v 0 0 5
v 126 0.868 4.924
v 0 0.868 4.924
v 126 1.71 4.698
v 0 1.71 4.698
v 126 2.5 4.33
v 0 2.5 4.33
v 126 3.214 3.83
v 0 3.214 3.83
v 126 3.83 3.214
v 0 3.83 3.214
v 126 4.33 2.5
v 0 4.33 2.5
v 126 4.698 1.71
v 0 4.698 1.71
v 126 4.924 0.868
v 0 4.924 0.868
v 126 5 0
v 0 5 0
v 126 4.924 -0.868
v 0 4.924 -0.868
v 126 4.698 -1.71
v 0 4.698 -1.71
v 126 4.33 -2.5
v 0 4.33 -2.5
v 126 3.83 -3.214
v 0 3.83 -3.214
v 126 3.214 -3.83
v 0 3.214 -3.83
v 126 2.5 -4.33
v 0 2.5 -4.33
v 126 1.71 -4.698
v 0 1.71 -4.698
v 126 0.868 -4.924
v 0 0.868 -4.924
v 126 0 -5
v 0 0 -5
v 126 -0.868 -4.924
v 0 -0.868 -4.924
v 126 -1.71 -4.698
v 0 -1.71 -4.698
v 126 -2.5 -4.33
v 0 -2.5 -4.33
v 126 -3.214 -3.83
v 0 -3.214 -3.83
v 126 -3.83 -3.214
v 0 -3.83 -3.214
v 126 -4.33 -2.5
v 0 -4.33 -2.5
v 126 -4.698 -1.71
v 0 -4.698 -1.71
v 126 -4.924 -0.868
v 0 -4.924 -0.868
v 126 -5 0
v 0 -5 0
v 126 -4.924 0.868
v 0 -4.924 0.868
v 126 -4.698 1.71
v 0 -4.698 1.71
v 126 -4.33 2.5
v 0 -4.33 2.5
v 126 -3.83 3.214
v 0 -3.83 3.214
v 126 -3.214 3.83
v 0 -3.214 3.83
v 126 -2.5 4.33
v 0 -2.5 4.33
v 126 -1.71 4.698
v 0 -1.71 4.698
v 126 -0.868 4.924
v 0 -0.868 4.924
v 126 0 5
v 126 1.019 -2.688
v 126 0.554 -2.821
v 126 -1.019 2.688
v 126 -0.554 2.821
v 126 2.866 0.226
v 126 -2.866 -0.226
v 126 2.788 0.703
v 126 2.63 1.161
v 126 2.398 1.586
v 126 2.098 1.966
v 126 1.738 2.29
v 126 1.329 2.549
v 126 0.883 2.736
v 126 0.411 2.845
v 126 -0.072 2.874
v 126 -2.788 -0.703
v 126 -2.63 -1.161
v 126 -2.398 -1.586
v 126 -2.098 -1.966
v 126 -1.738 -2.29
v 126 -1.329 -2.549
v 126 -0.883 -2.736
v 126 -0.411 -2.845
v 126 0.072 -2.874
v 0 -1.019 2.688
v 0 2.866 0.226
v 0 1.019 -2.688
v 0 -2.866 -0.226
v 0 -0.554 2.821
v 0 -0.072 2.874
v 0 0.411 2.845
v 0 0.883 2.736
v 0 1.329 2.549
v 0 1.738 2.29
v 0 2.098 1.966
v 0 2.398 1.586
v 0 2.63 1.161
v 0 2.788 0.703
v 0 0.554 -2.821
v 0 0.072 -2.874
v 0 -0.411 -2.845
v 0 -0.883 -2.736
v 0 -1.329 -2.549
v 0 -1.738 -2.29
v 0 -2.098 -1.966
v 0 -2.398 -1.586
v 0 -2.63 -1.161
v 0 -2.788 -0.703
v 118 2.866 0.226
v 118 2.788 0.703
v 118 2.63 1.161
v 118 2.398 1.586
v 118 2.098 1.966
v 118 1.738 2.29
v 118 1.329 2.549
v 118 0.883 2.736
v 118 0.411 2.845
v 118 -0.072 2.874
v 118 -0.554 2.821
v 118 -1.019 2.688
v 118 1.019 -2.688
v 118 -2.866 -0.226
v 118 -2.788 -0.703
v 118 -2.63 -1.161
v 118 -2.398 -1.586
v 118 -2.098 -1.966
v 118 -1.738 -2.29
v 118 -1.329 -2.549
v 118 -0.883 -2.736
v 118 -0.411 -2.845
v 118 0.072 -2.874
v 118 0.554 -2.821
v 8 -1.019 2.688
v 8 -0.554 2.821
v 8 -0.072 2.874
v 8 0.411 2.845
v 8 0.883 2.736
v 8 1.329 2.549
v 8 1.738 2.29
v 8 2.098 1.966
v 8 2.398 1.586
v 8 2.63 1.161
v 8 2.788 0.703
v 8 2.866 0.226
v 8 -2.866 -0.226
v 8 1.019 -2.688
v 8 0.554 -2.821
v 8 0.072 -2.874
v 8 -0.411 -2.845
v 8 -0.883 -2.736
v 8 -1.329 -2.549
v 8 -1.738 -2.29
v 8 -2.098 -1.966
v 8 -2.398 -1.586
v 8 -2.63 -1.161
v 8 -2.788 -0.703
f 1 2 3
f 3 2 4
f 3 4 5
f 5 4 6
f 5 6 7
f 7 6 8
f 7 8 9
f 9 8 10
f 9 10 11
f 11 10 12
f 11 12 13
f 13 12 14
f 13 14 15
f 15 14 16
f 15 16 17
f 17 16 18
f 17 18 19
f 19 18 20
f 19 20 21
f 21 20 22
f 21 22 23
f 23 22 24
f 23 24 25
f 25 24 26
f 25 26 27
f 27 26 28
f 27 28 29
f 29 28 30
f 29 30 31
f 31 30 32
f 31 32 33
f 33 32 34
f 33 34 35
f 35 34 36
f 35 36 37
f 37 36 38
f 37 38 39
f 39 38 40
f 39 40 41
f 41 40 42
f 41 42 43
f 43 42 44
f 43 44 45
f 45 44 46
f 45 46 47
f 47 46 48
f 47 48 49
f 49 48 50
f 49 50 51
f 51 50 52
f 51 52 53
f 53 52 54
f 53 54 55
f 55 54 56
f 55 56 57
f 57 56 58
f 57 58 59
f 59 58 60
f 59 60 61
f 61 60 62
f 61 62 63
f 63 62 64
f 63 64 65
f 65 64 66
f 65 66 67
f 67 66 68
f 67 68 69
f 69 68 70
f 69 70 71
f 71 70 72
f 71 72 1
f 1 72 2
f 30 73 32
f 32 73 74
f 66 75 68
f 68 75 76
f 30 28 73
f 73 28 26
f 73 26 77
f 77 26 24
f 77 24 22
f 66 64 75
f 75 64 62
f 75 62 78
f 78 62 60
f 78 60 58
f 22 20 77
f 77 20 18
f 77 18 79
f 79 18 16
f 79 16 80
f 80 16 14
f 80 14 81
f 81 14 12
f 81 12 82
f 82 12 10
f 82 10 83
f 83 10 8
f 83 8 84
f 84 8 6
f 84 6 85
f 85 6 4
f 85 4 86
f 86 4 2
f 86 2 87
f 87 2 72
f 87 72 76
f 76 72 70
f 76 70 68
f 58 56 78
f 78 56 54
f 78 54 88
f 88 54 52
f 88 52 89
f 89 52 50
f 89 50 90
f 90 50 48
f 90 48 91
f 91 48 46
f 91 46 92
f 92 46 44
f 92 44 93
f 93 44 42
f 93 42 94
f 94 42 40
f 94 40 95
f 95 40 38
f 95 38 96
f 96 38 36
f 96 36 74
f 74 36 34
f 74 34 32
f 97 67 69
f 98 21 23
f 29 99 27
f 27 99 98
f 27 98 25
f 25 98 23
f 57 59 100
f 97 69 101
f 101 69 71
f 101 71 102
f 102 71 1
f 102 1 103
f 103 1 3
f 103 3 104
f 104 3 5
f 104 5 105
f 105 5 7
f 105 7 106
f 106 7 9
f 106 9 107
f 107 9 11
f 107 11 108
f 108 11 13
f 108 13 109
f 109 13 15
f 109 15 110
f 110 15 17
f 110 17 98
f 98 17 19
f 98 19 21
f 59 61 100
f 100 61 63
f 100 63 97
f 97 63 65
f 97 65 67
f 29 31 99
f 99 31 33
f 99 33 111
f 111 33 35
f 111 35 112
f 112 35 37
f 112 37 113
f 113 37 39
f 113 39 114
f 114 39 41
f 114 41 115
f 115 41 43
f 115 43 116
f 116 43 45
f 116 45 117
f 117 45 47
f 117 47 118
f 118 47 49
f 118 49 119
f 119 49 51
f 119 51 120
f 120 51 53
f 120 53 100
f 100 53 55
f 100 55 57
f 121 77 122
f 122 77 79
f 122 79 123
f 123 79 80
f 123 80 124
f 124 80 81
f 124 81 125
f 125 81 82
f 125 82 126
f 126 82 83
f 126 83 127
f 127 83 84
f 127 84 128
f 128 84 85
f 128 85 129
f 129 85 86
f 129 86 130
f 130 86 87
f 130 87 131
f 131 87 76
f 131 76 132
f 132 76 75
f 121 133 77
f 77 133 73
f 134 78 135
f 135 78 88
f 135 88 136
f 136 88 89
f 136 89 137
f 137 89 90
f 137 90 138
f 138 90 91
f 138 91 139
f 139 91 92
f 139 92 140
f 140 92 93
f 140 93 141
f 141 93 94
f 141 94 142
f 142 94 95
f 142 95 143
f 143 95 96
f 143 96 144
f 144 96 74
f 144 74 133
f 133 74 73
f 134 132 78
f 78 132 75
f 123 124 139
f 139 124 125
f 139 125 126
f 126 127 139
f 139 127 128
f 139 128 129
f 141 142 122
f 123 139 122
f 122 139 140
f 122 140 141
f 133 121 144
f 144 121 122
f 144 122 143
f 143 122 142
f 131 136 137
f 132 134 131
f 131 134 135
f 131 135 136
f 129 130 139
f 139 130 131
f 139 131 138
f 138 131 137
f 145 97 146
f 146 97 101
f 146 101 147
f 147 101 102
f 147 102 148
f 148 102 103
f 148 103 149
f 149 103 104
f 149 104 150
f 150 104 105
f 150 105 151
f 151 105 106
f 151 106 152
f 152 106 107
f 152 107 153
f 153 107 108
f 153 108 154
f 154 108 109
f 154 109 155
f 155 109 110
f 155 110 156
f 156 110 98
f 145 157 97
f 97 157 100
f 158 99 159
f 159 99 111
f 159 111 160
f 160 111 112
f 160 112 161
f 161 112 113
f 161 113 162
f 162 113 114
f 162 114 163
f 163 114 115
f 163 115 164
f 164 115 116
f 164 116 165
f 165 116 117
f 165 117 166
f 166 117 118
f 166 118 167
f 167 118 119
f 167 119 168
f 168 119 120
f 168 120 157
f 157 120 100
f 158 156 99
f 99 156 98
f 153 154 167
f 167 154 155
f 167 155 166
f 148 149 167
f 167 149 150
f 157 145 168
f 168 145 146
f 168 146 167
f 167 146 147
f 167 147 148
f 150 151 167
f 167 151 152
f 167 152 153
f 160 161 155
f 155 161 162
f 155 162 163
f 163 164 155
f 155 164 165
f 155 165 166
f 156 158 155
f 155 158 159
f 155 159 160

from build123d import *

# Parameters (mm, degrees)
SKETCH1_R           = 5
BOSS_EXTRUDE1_DEPTH = 126
CUT_EXTRUDE1_DEPTH  = 8
CUT_EXTRUDE2_START  = -8
CUT_EXTRUDE2_DEPTH  = 8


with BuildPart() as part:
    # Sketch1 → Boss-Extrude1 (new body)
    with BuildSketch(Plane(origin=(0, 0, 0), x_dir=(0, 0, -1), z_dir=(1, 0, 0))):
        Circle(SKETCH1_R)
    extrude(amount=BOSS_EXTRUDE1_DEPTH)

    # Sketch2 → Cut-Extrude1 (cut)
    with BuildSketch(Plane(origin=(126, 0, 0), x_dir=(0, 0, -1), z_dir=(1, 0, 0))):
        with BuildLine():
            Line((-2.688276978, -1.019211407), (0.225725397, -2.866125092))
            ThreePointArc((0.225725397, -2.866125092), (2.428335312, -1.539094738), (2.688276978, 1.019211407))
            Line((2.688276978, 1.019211407), (-0.225725397, 2.866125092))
            ThreePointArc((-0.225725397, 2.866125092), (-2.428335312, 1.539094738), (-2.688276978, -1.019211407))
        make_face()
    extrude(amount=-CUT_EXTRUDE1_DEPTH, mode=Mode.SUBTRACT)

    # Sketch3 → Cut-Extrude2 (cut)
    with BuildSketch(Plane.ZY.offset(CUT_EXTRUDE2_START)):
        with BuildLine():
            Line((0.225725397, 2.866125092), (-2.688276978, 1.019211407))
            ThreePointArc((-2.688276978, 1.019211407), (-2.428335312, -1.539094738), (-0.225725397, -2.866125092))
            Line((-0.225725397, -2.866125092), (2.688276978, -1.019211407))
            ThreePointArc((2.688276978, -1.019211407), (2.428335312, 1.539094738), (0.225725397, 2.866125092))
        make_face()
    extrude(amount=CUT_EXTRUDE2_DEPTH, mode=Mode.SUBTRACT)


solid = part.part
